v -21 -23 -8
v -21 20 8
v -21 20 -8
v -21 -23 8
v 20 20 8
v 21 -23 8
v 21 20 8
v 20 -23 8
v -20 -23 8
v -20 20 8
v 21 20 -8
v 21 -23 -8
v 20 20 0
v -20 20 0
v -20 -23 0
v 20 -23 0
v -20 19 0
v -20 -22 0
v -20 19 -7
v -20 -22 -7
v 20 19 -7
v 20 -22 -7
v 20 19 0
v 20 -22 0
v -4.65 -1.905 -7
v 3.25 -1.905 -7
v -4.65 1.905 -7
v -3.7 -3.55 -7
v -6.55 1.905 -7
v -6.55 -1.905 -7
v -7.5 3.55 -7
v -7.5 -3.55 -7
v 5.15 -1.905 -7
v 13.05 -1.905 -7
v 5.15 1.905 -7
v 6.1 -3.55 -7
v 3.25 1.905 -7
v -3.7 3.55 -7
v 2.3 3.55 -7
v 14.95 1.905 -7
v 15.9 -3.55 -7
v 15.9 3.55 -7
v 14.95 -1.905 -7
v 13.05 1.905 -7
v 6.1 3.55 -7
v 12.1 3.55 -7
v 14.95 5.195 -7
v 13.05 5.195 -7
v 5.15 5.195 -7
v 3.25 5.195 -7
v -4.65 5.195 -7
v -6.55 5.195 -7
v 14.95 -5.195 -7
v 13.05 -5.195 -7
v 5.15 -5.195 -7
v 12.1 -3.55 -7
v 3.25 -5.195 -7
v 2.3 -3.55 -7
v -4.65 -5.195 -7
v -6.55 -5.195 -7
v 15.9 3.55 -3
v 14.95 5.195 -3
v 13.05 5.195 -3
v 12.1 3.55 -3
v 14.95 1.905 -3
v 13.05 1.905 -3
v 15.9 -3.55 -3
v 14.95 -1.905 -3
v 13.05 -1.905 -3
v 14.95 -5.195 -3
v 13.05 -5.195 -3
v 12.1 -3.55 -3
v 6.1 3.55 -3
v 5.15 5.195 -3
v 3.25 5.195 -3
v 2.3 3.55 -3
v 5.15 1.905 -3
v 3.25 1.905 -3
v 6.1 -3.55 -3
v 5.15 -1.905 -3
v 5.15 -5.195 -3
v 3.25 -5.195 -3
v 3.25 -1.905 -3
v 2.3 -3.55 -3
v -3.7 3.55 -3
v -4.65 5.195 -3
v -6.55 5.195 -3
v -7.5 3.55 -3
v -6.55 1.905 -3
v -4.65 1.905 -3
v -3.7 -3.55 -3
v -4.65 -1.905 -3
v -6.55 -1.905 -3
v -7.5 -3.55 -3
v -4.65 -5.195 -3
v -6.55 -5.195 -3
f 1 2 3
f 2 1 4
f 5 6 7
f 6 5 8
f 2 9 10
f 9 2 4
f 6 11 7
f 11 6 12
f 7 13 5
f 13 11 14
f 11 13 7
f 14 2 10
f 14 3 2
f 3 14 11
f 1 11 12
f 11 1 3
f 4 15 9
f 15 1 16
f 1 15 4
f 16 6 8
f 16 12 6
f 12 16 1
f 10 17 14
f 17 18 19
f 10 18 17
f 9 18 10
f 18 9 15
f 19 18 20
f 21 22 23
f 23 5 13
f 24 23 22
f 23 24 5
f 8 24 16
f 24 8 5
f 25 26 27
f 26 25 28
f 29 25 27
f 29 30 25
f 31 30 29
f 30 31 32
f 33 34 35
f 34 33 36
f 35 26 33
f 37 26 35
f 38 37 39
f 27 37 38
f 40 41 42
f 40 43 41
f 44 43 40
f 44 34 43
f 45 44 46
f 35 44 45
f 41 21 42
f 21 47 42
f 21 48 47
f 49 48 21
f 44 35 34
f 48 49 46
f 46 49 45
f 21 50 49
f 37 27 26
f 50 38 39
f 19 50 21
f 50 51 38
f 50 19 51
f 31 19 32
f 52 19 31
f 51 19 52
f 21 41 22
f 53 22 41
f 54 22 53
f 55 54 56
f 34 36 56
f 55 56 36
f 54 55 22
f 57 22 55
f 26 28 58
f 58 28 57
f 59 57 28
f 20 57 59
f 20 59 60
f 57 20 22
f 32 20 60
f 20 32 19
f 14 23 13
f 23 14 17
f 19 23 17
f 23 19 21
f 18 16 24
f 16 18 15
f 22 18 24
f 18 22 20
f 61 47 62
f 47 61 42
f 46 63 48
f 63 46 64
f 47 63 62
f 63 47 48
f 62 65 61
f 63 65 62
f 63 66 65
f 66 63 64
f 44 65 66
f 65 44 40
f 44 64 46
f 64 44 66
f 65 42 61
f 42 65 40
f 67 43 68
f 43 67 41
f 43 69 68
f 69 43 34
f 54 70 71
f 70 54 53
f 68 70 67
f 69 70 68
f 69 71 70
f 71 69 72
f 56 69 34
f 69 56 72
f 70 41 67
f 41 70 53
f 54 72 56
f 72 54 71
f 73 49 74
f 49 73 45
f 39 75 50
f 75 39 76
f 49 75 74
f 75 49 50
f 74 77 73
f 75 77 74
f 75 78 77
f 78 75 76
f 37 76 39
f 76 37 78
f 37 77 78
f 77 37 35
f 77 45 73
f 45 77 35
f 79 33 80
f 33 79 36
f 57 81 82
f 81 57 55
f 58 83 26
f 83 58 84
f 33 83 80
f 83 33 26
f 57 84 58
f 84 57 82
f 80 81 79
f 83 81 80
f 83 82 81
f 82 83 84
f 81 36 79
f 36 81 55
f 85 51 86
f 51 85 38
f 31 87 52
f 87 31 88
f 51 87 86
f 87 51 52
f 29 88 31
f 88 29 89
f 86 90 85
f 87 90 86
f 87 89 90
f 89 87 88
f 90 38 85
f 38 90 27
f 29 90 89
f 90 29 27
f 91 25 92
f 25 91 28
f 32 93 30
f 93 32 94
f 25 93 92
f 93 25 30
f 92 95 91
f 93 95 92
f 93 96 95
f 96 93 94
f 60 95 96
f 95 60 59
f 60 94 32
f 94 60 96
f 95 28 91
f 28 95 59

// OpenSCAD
// Wanne
translate([0, -1.5, 0])difference(){
    cube([42, 43, 16], center = true);
    translate([0, 0, 0.5])cube([40, 43, 15], center = true);
}
// Obere Teilwand
translate([0, 19.5, -(15-7)/2 + 0.5])cube([40,1,7], center=true);

// UntereTeilwand
translate([0, -22.5, -(15-7)/2  + 0.5])cube([40,1,7], center=true);


// Stifte, orientierung am Design, nicht an Lüsterklemme
translate([14,   3.55,  -(15-4)/2 + 0.5])cylinder(d=3.8, h=4, center = true); //Oben Rechts
translate([14,  -3.55,  -(15-4)/2 + 0.5])cylinder(d=3.8, h=4, center = true); //Unten Rechts
translate([4.2,  3.55,  -(15-4)/2 + 0.5])cylinder(d=3.8, h=4, center = true); //Oben Mitte
translate([4.2, -3.55,  -(15-4)/2 + 0.5])cylinder(d=3.8, h=4, center = true); //Unten Mitte
translate([-5.6, 3.55,  -(15-4)/2 + 0.5])cylinder(d=3.8, h=4, center = true); //Oben Links
translate([-5.6, -3.55, -(15-4)/2 + 0.5])cylinder(d=3.8, h=4, center = true); //Unten Links
